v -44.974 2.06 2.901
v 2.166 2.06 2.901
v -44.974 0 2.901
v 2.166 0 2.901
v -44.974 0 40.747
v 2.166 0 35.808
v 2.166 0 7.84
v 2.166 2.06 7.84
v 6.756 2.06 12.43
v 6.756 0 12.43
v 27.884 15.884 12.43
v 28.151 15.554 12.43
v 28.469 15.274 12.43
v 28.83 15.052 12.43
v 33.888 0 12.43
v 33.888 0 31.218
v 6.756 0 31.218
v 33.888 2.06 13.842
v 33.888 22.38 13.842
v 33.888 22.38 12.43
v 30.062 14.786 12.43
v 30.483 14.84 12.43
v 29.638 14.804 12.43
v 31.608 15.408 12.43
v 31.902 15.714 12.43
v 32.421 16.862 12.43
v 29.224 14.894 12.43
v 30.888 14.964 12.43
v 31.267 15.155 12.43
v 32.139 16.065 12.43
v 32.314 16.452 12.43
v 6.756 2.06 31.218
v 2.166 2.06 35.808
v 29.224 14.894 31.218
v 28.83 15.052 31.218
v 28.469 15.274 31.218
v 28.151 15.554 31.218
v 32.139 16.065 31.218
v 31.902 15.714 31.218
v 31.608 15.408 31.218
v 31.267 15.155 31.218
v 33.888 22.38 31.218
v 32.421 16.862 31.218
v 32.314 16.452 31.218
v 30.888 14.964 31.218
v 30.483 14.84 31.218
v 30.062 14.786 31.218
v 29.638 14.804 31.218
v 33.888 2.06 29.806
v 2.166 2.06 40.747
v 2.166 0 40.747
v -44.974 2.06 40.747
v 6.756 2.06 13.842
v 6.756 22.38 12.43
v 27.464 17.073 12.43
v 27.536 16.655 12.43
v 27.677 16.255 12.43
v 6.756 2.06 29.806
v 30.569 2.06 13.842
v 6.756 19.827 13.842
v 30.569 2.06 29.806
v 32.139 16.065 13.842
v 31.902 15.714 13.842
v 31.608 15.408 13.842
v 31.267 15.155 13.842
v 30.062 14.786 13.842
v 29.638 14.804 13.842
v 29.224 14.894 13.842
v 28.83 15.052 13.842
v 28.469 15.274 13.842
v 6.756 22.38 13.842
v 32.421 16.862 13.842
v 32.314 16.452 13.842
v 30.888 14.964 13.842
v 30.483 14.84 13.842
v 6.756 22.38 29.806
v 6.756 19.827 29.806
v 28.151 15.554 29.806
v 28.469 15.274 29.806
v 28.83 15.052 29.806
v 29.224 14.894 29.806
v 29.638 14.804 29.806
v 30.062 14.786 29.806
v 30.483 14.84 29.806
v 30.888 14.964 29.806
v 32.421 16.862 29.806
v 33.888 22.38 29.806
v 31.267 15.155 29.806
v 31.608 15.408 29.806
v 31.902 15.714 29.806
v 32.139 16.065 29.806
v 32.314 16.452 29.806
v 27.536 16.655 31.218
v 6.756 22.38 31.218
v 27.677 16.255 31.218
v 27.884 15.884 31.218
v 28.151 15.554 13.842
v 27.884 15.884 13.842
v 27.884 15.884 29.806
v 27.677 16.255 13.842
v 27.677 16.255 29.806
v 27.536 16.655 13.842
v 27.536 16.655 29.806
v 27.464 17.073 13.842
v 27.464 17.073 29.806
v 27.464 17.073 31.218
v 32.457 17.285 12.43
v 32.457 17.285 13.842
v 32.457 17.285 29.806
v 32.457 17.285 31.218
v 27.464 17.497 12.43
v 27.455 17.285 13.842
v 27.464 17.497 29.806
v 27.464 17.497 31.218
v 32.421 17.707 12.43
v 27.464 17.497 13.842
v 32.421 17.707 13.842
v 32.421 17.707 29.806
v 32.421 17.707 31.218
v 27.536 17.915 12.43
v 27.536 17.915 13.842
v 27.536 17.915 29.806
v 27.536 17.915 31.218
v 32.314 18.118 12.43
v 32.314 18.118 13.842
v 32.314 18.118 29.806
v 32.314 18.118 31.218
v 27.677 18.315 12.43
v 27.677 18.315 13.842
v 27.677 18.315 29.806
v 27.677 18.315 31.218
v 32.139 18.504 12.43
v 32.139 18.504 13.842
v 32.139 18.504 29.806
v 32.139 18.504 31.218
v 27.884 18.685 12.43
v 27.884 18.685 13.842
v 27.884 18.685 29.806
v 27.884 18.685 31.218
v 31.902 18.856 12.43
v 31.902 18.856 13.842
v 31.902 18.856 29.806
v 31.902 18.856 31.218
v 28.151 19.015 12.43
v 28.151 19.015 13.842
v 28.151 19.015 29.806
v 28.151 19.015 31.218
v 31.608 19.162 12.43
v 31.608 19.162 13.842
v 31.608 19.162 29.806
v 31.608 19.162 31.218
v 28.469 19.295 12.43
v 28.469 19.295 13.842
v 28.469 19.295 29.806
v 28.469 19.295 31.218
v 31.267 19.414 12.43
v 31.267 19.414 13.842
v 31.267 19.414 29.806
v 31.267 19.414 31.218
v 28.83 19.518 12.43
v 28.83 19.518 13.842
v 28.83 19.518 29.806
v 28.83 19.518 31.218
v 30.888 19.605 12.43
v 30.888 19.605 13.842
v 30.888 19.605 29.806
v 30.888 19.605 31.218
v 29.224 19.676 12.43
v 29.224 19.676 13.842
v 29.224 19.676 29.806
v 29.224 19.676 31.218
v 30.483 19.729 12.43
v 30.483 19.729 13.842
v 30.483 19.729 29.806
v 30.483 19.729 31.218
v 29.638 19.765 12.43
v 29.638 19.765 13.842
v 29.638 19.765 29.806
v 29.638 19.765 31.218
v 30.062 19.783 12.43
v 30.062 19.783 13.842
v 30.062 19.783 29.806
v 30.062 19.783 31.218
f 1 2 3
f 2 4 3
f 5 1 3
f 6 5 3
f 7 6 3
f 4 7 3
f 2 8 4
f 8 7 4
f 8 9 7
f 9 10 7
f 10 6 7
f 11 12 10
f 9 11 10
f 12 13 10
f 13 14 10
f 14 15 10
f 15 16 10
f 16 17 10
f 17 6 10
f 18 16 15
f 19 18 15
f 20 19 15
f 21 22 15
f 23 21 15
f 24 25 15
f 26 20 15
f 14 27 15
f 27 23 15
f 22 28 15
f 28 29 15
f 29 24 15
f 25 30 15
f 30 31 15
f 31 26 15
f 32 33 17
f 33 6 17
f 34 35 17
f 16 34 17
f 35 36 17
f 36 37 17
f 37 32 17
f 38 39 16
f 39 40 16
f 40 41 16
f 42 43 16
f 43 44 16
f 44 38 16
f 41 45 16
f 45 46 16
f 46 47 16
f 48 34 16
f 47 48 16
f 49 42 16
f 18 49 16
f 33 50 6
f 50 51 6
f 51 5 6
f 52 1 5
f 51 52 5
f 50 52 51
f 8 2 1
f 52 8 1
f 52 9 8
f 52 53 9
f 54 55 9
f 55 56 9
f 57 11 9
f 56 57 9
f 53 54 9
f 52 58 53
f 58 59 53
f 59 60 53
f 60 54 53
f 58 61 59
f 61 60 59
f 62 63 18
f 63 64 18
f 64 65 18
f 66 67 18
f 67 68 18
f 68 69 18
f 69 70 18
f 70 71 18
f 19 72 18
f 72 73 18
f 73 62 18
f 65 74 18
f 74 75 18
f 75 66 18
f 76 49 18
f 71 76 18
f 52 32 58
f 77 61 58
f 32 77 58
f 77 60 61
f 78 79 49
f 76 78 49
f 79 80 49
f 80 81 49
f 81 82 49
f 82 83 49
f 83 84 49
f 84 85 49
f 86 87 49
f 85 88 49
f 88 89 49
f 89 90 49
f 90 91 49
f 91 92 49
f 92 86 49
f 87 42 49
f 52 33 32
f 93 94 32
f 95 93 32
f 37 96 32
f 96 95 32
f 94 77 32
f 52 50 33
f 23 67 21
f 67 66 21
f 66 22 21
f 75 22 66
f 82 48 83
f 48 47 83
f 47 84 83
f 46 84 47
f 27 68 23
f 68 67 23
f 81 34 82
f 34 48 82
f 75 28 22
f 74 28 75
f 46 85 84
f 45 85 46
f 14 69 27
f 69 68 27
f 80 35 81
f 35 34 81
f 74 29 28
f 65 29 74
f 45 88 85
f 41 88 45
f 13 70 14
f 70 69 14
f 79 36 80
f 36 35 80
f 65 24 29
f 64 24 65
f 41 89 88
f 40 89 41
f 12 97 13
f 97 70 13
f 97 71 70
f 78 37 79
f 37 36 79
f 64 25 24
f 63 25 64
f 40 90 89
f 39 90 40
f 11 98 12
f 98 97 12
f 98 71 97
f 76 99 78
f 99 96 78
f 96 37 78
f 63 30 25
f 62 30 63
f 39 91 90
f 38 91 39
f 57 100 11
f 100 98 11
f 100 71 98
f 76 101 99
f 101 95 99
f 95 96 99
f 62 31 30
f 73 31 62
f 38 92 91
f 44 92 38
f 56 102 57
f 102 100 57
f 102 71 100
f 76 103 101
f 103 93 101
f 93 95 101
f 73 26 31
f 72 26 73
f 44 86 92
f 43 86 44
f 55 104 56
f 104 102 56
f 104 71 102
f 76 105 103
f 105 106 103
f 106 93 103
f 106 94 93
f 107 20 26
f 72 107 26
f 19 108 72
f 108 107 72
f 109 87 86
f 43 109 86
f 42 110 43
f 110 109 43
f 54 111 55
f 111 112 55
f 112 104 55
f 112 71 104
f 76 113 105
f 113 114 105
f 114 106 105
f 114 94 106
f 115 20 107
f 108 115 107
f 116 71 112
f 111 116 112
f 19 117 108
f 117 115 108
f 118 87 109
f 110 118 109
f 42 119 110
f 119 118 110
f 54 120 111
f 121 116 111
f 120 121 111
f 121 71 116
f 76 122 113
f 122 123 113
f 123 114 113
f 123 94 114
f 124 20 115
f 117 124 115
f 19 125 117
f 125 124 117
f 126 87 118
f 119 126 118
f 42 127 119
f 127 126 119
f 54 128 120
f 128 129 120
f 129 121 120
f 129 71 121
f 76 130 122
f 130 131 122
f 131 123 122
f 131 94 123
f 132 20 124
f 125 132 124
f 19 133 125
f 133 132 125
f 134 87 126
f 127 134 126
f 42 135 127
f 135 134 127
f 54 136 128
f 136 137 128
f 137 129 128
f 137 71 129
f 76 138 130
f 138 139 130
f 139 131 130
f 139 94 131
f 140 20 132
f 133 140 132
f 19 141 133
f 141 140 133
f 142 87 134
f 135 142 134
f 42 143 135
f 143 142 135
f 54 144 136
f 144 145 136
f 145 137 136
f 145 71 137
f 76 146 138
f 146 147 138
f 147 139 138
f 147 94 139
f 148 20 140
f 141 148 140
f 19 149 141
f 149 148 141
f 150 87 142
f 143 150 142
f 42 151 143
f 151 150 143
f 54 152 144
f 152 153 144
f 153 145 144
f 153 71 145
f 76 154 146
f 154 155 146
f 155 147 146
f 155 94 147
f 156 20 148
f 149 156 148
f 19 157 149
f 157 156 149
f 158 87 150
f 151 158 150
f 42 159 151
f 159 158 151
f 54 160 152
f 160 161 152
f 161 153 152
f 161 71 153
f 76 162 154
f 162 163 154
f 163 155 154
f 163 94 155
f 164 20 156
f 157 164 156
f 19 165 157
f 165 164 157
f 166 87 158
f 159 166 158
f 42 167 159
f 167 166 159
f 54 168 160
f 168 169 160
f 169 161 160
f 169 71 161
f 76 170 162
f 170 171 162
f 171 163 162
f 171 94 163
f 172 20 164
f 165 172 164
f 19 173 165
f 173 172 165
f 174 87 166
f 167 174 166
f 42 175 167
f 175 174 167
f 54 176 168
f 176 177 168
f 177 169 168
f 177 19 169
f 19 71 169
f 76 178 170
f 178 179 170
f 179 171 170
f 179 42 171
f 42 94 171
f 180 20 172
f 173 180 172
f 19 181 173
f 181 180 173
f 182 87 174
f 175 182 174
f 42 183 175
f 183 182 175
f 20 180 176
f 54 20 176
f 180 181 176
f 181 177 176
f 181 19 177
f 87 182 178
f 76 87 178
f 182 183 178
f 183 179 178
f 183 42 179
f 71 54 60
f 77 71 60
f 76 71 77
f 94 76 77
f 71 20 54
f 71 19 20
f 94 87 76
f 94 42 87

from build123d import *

# Parameters (mm, degrees)
BOSS_EXTRUDE6_DEPTH  = 2.05994
SKETCH9_W            = 27.13228
SKETCH9_H            = 1.41224
BOSS_EXTRUDE7_DEPTH  = 20.32
SKETCH10_R           = 2.50063
CUT_EXTRUDE3_DEPTH   = 25.4
BOSS_EXTRUDE10_DEPTH = 16.02994


with BuildPart() as part:
    # Sketch8 → Boss-Extrude6 (new body)
    with BuildSketch(Plane(origin=(0, 0, 0), x_dir=(1, 0, 0), z_dir=(0, 1, 0))):
        Polygon((-44.974060072, -2.900891689), (-44.974060072, -40.746891689), (2.165799928, -40.746891689), (2.165799928, -35.808024144), (6.755579928, -31.218244144), (33.887859928, -31.218244144), (33.887859928, -12.429539234), (6.755579928, -12.429539234), (2.165799928, -7.839759234), (2.165799928, -2.900891689), align=None)
    extrude(amount=BOSS_EXTRUDE6_DEPTH)

    # Sketch9 → Boss-Extrude7 (add)
    with BuildSketch(Plane(origin=(0, 2.05994, 0), x_dir=(1, 0, 0), z_dir=(0, 1, 0))):
        with Locations((20.321719928, -13.135659234)):
            Rectangle(SKETCH9_W, SKETCH9_H)
        with Locations((20.321719928, -30.512124144)):
            Rectangle(SKETCH9_W, SKETCH9_H)
    extrude(amount=BOSS_EXTRUDE7_DEPTH)

    # Sketch10 → Cut-Extrude3 (cut)
    with BuildSketch(Plane.XY.offset(31.218244144)):
        with Locations((29.955939928, 17.2847)):
            Circle(SKETCH10_R)
    extrude(amount=-CUT_EXTRUDE3_DEPTH, mode=Mode.SUBTRACT)

    # Sketch14 → Boss-Extrude10 (add)
    with BuildSketch(Plane.XY.offset(13.841779234)):
        Polygon((6.755579928, 22.37994), (33.887859928, 2.05994), (30.568919609, 2.05994), (6.755579928, 19.826826768), align=None)
    extrude(amount=BOSS_EXTRUDE10_DEPTH)


solid = part.part
